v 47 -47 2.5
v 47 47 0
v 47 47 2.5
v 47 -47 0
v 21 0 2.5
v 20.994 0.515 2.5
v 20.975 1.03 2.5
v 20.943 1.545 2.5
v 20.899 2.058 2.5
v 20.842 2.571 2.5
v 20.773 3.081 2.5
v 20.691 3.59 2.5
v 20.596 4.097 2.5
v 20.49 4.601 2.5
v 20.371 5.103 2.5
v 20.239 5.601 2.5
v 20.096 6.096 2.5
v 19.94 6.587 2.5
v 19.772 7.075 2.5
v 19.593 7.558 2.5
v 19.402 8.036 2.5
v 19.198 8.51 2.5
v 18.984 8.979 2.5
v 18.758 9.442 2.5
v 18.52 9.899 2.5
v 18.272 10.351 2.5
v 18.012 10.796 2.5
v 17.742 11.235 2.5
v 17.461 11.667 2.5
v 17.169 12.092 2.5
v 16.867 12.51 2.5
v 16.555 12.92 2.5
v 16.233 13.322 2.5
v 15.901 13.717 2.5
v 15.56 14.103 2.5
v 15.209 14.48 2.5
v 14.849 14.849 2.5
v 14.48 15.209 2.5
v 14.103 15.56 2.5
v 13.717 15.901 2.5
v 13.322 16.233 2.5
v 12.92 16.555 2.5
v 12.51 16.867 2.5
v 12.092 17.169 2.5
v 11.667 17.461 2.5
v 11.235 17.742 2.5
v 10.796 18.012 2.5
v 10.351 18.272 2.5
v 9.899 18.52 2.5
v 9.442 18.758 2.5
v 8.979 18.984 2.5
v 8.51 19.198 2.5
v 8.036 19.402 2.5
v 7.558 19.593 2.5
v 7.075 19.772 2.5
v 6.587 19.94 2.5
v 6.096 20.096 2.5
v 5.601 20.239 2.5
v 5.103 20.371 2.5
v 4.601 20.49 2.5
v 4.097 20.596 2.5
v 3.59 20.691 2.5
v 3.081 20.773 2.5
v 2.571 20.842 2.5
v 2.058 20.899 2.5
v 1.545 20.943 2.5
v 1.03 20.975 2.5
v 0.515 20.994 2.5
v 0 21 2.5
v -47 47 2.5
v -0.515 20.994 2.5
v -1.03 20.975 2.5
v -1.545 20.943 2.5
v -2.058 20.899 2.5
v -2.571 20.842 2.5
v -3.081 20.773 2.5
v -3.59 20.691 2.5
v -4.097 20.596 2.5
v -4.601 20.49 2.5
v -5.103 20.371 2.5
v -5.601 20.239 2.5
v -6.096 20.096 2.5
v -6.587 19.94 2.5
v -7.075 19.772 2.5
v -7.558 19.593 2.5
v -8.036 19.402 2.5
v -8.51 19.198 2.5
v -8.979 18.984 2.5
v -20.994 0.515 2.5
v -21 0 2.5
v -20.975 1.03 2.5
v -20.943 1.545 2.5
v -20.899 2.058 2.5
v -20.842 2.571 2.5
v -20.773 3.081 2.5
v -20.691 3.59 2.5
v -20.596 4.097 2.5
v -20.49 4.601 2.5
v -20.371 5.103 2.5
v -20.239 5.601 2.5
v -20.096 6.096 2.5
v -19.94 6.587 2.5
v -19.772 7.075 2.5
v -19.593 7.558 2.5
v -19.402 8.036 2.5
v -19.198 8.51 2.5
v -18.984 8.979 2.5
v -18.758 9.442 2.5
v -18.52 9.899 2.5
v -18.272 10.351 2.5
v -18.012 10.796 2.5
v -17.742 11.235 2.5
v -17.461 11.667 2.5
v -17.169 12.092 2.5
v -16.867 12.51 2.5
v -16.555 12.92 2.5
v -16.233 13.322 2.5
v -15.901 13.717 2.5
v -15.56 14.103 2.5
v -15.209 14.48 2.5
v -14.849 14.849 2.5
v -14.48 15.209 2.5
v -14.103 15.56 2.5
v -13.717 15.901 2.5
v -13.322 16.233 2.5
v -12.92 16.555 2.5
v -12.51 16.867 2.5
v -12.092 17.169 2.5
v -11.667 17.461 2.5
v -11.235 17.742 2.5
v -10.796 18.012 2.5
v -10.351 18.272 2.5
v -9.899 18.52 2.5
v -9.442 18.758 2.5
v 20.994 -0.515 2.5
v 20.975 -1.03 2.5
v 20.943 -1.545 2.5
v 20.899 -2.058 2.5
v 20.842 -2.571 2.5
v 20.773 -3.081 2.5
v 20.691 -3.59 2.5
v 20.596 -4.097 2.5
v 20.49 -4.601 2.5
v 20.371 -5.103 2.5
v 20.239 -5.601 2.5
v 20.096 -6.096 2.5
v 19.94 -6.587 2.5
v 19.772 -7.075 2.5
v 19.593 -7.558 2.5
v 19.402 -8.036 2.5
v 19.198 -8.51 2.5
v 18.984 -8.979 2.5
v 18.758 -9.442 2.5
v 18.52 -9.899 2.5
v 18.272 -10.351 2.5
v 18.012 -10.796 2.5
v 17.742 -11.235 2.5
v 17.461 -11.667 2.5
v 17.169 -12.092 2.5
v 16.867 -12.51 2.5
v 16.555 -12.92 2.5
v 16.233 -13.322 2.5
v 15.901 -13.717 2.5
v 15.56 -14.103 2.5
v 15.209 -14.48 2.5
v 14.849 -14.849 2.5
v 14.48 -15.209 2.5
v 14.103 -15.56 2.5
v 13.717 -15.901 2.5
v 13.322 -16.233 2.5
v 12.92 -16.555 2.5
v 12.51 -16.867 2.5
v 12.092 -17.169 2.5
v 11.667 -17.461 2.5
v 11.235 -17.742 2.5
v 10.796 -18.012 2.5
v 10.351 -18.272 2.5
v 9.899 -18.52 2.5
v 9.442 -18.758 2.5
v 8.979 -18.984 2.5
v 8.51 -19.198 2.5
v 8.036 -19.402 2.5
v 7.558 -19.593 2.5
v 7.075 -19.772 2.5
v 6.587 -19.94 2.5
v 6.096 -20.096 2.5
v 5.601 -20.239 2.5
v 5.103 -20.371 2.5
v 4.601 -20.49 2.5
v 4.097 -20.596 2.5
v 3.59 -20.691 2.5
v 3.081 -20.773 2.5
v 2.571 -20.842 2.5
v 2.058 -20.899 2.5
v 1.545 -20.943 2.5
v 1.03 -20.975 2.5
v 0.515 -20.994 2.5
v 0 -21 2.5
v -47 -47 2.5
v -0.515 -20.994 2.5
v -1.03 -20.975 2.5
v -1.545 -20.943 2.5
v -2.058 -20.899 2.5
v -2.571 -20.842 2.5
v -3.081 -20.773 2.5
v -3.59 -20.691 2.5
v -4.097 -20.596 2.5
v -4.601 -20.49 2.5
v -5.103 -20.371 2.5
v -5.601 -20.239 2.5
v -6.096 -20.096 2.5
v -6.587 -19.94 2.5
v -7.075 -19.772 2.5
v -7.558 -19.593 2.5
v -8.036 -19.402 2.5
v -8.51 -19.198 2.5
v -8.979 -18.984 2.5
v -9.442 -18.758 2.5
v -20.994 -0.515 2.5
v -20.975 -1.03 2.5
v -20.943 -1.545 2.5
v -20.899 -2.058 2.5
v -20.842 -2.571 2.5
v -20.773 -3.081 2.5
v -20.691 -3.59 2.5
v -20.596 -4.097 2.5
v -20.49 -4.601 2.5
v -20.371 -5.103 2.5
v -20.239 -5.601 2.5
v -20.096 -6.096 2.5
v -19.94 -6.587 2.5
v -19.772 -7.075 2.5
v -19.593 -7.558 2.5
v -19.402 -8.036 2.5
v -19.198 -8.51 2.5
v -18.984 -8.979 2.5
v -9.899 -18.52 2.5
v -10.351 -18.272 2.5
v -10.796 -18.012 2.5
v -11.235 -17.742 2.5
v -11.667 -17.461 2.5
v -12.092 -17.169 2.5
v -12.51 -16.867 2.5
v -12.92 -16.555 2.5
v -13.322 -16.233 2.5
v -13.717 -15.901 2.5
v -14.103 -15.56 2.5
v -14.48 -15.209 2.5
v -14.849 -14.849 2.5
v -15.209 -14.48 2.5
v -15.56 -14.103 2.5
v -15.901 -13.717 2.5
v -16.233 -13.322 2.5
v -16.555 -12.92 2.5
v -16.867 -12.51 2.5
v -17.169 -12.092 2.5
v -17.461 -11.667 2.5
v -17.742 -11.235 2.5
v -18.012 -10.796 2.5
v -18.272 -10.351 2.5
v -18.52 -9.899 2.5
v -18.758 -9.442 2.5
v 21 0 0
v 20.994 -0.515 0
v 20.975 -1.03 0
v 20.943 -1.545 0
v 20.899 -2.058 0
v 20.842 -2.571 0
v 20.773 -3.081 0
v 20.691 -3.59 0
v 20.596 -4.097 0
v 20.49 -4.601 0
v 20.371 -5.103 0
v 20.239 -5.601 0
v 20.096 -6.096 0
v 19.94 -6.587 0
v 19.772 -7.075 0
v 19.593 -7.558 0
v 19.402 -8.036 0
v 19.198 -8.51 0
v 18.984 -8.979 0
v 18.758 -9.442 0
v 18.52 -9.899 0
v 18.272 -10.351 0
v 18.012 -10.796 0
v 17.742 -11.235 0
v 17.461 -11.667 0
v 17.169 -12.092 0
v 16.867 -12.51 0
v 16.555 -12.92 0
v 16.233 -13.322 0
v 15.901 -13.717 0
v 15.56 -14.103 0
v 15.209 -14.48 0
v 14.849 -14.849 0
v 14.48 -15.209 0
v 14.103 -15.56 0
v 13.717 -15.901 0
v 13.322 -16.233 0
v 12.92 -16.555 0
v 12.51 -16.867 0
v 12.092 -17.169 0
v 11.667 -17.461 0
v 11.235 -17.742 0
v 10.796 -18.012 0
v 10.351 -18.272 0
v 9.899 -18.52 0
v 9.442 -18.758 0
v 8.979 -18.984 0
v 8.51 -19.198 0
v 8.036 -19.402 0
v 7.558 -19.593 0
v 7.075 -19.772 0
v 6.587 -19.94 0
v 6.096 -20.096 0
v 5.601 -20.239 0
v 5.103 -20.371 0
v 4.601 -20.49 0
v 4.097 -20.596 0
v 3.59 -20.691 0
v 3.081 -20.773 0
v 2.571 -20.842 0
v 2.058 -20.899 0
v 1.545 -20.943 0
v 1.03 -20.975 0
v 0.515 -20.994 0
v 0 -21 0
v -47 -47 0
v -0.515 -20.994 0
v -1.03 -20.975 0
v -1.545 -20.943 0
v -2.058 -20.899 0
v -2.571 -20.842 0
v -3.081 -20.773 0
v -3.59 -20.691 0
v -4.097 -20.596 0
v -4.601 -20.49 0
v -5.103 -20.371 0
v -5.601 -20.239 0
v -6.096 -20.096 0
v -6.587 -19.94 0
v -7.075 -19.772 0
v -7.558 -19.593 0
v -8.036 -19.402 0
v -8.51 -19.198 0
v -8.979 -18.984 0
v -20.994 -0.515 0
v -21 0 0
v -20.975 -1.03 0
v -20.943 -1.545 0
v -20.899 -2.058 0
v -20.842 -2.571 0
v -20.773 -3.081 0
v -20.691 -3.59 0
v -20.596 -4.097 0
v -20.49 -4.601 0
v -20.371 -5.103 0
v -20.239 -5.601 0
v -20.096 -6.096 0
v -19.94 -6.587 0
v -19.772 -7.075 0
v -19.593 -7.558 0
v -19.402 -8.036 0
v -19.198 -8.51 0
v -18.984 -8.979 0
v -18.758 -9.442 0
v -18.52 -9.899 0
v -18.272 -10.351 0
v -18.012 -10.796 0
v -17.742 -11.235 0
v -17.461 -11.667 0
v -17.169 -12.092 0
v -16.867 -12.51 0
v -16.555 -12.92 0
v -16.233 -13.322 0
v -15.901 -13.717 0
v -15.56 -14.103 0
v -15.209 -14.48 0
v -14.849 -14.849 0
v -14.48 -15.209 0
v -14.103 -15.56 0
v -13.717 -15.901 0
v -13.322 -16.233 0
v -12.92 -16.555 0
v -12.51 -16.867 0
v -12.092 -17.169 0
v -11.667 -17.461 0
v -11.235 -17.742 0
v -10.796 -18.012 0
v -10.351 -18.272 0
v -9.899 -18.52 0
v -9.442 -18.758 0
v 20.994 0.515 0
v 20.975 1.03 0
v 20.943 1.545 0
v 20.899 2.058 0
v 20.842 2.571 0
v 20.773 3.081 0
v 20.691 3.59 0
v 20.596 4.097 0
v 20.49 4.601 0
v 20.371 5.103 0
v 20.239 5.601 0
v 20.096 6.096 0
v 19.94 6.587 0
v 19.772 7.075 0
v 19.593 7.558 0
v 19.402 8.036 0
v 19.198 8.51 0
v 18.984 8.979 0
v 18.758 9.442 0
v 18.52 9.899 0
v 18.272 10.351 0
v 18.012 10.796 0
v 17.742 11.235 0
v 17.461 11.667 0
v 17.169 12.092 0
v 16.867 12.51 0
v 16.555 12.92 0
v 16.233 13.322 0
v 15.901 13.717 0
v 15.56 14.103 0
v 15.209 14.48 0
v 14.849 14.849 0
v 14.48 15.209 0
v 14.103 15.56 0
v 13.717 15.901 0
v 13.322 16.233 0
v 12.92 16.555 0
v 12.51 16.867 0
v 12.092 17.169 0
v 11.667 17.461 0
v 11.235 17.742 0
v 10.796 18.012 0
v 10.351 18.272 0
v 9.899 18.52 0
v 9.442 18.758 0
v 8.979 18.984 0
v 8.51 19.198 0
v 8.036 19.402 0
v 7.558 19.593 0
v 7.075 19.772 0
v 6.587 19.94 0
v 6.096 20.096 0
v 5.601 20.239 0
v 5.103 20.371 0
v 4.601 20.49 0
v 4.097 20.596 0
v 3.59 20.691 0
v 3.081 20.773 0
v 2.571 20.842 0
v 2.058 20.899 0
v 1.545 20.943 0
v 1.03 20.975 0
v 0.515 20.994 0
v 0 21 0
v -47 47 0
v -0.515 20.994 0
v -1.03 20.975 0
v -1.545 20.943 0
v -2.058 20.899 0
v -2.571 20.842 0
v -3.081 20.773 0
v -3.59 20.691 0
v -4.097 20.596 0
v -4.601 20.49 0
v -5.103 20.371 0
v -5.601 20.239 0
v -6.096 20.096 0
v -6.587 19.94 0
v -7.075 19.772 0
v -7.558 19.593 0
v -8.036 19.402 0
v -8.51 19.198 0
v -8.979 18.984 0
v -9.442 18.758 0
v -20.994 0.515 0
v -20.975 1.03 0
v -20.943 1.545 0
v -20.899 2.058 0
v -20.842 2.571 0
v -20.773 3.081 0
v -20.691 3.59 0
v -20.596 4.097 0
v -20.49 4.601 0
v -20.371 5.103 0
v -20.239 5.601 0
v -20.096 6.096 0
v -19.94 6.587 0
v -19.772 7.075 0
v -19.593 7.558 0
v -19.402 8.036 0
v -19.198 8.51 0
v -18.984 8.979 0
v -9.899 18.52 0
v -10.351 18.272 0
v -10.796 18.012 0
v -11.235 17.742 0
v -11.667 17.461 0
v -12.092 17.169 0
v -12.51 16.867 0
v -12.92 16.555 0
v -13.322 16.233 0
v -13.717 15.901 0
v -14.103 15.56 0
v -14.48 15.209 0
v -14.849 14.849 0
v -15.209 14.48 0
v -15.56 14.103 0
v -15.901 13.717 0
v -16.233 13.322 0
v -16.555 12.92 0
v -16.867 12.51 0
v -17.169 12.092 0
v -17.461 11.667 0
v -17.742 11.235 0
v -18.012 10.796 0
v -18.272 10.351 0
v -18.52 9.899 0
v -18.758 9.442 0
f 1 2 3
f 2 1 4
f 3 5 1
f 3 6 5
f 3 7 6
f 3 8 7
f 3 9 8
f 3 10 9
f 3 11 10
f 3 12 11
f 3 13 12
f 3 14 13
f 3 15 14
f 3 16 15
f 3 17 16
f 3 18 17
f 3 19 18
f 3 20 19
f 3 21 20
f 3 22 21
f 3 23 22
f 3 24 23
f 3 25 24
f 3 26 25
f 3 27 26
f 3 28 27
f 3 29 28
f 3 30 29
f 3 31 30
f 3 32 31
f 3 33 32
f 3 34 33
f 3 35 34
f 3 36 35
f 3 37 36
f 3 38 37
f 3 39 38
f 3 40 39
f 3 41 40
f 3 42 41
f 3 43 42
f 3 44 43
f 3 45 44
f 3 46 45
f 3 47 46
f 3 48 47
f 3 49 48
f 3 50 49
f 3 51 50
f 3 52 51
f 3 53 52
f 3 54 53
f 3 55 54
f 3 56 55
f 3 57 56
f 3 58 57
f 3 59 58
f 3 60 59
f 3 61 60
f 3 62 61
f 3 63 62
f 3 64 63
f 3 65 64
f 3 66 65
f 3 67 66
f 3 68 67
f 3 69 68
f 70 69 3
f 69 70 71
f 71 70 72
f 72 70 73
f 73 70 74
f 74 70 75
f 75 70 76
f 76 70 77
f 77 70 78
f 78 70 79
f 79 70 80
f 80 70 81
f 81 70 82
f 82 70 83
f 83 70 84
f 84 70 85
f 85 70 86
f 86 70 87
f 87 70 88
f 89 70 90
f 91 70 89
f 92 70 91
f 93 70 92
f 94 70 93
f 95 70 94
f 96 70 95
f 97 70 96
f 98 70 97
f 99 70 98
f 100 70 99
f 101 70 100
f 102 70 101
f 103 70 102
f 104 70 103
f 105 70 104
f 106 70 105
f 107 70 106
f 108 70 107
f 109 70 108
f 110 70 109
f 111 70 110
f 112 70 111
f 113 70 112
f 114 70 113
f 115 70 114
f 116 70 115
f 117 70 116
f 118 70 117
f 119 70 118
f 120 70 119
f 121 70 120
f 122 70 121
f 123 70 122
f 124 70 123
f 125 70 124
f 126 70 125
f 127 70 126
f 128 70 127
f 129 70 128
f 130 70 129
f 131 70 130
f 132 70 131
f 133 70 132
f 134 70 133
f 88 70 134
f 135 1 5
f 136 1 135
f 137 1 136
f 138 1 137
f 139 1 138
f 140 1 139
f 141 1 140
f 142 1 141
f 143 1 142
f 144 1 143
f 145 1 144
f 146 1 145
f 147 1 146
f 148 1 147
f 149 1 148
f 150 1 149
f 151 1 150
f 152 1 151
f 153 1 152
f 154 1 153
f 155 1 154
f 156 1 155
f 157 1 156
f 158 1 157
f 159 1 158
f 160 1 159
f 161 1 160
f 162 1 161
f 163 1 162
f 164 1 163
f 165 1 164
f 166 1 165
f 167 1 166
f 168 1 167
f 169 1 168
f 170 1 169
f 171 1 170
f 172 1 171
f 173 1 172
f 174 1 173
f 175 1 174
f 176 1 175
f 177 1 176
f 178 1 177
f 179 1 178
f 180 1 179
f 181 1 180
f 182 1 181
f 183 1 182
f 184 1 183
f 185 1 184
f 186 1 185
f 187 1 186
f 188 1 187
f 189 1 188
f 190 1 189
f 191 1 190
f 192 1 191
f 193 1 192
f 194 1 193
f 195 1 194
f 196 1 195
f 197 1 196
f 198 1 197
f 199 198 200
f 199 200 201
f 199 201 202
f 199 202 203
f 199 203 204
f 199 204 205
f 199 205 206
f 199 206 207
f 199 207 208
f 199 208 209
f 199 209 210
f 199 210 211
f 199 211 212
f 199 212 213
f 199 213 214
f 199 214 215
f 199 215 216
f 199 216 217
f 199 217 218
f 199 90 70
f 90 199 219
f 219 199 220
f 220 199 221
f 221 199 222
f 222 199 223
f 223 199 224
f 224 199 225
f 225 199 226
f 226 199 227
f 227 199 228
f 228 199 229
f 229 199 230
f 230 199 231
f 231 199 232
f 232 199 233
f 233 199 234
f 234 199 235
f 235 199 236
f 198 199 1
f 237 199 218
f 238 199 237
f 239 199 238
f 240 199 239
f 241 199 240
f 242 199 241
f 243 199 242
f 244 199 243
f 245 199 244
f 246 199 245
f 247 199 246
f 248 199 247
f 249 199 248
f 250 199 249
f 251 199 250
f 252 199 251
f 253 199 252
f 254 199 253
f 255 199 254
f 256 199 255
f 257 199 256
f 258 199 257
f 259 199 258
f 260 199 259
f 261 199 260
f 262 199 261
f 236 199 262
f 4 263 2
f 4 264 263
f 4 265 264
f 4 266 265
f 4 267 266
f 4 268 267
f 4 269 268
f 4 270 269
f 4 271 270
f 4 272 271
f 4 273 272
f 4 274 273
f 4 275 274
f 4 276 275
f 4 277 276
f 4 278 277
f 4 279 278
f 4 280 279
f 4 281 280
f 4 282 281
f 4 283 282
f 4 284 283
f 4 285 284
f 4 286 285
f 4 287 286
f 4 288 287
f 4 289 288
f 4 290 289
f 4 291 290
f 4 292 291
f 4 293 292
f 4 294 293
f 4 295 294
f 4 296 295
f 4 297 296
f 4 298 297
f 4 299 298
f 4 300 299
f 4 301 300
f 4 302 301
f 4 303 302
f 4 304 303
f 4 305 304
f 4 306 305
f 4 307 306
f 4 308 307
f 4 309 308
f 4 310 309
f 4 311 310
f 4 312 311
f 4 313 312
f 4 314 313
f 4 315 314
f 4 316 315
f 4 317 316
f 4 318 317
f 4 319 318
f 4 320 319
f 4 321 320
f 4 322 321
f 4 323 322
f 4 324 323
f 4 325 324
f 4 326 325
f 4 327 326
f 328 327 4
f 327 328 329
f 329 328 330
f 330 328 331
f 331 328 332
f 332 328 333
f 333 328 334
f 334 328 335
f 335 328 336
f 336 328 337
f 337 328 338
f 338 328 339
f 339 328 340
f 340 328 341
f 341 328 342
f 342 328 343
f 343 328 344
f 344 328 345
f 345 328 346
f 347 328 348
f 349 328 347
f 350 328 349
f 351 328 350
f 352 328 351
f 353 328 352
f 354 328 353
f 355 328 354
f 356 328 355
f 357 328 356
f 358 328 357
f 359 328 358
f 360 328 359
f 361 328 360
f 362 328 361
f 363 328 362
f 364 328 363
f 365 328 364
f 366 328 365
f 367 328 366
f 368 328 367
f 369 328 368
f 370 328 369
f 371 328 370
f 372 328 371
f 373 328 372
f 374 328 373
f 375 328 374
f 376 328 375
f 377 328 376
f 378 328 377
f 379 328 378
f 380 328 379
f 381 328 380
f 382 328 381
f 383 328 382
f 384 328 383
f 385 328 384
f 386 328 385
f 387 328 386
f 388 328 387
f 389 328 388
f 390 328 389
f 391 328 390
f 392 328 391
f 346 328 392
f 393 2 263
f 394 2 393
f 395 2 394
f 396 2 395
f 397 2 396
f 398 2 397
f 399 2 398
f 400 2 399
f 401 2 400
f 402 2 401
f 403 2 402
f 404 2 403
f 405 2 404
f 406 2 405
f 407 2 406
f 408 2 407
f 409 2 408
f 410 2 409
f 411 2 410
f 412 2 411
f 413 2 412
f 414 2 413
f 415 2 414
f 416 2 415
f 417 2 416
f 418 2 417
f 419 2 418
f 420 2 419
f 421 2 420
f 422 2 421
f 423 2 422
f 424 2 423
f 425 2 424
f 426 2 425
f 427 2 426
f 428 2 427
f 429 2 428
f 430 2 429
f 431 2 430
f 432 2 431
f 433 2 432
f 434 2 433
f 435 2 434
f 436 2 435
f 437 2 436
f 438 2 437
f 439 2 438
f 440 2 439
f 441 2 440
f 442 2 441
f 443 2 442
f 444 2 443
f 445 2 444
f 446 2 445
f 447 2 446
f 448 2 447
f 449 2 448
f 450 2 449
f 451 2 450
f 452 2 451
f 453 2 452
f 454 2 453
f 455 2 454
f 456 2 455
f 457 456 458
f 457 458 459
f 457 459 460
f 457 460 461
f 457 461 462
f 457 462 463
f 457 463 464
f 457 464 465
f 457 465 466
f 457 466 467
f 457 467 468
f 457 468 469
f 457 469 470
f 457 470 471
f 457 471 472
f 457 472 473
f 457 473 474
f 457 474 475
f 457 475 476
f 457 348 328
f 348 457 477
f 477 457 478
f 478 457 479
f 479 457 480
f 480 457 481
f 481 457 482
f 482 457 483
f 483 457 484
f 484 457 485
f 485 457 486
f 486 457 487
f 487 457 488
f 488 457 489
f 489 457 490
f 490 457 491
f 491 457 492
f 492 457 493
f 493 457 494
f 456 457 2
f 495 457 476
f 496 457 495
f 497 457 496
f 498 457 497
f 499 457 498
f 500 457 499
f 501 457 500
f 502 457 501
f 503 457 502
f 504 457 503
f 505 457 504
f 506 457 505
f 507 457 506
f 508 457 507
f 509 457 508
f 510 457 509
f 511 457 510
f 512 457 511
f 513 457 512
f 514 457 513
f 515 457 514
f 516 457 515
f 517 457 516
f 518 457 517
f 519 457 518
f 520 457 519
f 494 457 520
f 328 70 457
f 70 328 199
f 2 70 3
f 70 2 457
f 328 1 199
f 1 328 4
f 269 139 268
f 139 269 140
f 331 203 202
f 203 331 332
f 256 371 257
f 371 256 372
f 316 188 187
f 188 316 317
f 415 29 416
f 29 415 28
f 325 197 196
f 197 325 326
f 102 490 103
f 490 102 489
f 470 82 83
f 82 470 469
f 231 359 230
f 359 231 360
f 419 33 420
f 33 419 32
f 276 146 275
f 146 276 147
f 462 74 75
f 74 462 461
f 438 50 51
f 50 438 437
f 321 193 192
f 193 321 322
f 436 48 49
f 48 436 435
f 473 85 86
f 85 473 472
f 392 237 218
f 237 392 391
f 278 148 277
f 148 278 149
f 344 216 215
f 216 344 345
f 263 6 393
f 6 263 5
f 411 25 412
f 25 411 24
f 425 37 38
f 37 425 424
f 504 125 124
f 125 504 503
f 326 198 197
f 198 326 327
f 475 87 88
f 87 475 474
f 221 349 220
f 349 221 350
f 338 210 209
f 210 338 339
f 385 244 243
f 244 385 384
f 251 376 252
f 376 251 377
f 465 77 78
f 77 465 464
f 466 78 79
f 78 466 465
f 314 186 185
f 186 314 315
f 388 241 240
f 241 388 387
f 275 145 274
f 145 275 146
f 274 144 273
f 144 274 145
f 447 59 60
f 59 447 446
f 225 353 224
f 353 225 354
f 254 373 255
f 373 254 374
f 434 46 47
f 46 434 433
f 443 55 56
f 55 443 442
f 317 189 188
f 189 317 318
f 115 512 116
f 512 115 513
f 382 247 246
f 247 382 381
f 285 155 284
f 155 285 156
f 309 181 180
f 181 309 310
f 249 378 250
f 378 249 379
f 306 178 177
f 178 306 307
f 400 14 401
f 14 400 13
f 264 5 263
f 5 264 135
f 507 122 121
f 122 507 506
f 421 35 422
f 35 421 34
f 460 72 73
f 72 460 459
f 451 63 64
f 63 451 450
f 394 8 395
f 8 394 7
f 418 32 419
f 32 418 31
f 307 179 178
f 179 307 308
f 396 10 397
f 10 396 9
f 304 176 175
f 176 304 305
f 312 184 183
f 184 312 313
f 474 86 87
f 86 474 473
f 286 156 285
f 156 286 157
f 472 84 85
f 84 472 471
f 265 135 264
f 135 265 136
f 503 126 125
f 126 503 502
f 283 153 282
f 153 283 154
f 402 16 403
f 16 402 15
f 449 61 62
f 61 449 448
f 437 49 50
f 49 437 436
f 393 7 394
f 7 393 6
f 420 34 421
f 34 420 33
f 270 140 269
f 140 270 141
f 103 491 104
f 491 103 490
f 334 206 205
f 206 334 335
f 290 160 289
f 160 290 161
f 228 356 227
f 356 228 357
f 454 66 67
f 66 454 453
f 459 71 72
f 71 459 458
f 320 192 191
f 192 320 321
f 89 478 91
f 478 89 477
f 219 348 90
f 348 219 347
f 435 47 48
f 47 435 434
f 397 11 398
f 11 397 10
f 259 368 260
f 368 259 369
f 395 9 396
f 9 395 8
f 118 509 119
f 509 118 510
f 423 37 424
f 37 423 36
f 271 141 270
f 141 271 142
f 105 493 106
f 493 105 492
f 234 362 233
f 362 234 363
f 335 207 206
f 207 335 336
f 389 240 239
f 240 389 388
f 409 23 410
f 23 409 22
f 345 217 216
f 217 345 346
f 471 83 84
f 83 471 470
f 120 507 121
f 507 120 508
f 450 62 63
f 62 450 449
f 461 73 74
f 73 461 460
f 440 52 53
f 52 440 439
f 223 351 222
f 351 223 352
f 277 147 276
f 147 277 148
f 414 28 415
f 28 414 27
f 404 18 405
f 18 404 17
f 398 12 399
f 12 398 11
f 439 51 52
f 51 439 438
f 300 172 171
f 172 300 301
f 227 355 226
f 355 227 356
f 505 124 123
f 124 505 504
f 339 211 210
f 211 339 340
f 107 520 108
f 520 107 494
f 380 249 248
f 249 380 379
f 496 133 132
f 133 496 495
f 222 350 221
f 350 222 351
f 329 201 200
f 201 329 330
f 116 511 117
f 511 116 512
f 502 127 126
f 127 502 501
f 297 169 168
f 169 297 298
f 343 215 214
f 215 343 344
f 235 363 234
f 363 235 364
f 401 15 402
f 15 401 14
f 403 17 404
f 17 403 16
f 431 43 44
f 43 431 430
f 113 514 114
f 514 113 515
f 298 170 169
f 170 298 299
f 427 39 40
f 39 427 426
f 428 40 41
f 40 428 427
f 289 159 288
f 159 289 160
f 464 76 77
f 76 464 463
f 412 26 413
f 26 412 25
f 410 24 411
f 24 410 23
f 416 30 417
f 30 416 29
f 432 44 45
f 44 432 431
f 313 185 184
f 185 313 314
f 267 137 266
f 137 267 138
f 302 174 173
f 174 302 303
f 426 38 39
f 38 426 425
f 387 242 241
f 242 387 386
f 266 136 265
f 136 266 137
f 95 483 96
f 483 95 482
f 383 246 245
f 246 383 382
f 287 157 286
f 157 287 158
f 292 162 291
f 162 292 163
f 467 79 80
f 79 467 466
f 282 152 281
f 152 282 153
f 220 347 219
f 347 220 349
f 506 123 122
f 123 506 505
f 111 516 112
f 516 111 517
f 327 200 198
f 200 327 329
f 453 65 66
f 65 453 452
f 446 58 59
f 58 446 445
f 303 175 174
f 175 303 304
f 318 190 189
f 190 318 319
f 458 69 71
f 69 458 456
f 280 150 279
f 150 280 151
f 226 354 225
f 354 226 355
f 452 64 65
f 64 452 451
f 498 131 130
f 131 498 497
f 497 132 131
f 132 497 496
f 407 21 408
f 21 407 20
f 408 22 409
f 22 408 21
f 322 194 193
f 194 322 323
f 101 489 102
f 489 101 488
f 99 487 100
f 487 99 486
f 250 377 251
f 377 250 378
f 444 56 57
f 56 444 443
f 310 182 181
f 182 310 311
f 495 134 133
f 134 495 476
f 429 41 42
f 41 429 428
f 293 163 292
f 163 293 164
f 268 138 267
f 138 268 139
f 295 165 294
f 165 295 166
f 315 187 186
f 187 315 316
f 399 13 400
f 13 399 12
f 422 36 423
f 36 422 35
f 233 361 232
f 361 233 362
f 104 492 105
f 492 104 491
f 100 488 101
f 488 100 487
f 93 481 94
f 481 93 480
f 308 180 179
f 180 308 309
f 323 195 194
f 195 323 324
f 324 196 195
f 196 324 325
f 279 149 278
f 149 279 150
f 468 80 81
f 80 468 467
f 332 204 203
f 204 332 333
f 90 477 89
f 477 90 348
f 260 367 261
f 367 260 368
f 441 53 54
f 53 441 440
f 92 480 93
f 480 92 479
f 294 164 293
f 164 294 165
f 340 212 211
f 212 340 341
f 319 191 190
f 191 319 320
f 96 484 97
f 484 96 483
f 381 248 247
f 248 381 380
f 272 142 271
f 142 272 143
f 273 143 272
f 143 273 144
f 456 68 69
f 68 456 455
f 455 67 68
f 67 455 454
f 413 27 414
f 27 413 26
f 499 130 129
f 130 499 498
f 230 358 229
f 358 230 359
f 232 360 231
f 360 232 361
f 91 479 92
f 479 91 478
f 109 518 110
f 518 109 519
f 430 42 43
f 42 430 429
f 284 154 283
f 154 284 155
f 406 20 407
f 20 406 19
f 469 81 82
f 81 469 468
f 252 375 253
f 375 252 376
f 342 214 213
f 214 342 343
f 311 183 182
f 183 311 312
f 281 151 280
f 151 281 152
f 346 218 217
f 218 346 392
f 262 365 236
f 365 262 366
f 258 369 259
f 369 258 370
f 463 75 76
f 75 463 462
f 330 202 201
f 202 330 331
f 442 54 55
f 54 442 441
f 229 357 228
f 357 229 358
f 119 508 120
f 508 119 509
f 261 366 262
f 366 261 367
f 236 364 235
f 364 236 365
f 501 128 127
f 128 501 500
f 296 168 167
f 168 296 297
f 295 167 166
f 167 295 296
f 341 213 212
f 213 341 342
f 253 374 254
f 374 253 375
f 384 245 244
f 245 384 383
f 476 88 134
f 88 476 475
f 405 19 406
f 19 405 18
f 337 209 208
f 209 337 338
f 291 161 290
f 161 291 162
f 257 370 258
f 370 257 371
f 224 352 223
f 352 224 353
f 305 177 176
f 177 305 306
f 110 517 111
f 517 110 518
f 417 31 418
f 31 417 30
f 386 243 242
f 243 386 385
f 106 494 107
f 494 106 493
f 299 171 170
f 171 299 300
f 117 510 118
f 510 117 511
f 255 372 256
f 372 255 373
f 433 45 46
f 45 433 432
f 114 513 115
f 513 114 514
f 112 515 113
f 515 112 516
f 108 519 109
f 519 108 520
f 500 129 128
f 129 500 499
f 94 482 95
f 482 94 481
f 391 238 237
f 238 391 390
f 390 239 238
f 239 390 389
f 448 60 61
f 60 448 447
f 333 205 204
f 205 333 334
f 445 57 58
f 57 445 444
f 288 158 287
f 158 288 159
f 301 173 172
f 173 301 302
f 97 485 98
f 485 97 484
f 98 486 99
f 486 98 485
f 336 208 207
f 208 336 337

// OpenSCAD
difference() {
    cube_center([94,94,2.5]);
    cylinder(d=42,h=10,center=true,$fn=256);
}
module cube_center(dims,r=0) {
    if(r==0) {
        translate([-dims[0]/2, -dims[1]/2, 0])
        cube(dims);
    } else {
        
        minkowski() {
            translate([-dims[0]/2+r, -dims[1]/2+r, 0])
            cube([dims[0]-2*r,dims[1]-2*r,dims[2]]);
            cylinder(r=r,h=0.00001,$fn=32);
        }
    }
}
